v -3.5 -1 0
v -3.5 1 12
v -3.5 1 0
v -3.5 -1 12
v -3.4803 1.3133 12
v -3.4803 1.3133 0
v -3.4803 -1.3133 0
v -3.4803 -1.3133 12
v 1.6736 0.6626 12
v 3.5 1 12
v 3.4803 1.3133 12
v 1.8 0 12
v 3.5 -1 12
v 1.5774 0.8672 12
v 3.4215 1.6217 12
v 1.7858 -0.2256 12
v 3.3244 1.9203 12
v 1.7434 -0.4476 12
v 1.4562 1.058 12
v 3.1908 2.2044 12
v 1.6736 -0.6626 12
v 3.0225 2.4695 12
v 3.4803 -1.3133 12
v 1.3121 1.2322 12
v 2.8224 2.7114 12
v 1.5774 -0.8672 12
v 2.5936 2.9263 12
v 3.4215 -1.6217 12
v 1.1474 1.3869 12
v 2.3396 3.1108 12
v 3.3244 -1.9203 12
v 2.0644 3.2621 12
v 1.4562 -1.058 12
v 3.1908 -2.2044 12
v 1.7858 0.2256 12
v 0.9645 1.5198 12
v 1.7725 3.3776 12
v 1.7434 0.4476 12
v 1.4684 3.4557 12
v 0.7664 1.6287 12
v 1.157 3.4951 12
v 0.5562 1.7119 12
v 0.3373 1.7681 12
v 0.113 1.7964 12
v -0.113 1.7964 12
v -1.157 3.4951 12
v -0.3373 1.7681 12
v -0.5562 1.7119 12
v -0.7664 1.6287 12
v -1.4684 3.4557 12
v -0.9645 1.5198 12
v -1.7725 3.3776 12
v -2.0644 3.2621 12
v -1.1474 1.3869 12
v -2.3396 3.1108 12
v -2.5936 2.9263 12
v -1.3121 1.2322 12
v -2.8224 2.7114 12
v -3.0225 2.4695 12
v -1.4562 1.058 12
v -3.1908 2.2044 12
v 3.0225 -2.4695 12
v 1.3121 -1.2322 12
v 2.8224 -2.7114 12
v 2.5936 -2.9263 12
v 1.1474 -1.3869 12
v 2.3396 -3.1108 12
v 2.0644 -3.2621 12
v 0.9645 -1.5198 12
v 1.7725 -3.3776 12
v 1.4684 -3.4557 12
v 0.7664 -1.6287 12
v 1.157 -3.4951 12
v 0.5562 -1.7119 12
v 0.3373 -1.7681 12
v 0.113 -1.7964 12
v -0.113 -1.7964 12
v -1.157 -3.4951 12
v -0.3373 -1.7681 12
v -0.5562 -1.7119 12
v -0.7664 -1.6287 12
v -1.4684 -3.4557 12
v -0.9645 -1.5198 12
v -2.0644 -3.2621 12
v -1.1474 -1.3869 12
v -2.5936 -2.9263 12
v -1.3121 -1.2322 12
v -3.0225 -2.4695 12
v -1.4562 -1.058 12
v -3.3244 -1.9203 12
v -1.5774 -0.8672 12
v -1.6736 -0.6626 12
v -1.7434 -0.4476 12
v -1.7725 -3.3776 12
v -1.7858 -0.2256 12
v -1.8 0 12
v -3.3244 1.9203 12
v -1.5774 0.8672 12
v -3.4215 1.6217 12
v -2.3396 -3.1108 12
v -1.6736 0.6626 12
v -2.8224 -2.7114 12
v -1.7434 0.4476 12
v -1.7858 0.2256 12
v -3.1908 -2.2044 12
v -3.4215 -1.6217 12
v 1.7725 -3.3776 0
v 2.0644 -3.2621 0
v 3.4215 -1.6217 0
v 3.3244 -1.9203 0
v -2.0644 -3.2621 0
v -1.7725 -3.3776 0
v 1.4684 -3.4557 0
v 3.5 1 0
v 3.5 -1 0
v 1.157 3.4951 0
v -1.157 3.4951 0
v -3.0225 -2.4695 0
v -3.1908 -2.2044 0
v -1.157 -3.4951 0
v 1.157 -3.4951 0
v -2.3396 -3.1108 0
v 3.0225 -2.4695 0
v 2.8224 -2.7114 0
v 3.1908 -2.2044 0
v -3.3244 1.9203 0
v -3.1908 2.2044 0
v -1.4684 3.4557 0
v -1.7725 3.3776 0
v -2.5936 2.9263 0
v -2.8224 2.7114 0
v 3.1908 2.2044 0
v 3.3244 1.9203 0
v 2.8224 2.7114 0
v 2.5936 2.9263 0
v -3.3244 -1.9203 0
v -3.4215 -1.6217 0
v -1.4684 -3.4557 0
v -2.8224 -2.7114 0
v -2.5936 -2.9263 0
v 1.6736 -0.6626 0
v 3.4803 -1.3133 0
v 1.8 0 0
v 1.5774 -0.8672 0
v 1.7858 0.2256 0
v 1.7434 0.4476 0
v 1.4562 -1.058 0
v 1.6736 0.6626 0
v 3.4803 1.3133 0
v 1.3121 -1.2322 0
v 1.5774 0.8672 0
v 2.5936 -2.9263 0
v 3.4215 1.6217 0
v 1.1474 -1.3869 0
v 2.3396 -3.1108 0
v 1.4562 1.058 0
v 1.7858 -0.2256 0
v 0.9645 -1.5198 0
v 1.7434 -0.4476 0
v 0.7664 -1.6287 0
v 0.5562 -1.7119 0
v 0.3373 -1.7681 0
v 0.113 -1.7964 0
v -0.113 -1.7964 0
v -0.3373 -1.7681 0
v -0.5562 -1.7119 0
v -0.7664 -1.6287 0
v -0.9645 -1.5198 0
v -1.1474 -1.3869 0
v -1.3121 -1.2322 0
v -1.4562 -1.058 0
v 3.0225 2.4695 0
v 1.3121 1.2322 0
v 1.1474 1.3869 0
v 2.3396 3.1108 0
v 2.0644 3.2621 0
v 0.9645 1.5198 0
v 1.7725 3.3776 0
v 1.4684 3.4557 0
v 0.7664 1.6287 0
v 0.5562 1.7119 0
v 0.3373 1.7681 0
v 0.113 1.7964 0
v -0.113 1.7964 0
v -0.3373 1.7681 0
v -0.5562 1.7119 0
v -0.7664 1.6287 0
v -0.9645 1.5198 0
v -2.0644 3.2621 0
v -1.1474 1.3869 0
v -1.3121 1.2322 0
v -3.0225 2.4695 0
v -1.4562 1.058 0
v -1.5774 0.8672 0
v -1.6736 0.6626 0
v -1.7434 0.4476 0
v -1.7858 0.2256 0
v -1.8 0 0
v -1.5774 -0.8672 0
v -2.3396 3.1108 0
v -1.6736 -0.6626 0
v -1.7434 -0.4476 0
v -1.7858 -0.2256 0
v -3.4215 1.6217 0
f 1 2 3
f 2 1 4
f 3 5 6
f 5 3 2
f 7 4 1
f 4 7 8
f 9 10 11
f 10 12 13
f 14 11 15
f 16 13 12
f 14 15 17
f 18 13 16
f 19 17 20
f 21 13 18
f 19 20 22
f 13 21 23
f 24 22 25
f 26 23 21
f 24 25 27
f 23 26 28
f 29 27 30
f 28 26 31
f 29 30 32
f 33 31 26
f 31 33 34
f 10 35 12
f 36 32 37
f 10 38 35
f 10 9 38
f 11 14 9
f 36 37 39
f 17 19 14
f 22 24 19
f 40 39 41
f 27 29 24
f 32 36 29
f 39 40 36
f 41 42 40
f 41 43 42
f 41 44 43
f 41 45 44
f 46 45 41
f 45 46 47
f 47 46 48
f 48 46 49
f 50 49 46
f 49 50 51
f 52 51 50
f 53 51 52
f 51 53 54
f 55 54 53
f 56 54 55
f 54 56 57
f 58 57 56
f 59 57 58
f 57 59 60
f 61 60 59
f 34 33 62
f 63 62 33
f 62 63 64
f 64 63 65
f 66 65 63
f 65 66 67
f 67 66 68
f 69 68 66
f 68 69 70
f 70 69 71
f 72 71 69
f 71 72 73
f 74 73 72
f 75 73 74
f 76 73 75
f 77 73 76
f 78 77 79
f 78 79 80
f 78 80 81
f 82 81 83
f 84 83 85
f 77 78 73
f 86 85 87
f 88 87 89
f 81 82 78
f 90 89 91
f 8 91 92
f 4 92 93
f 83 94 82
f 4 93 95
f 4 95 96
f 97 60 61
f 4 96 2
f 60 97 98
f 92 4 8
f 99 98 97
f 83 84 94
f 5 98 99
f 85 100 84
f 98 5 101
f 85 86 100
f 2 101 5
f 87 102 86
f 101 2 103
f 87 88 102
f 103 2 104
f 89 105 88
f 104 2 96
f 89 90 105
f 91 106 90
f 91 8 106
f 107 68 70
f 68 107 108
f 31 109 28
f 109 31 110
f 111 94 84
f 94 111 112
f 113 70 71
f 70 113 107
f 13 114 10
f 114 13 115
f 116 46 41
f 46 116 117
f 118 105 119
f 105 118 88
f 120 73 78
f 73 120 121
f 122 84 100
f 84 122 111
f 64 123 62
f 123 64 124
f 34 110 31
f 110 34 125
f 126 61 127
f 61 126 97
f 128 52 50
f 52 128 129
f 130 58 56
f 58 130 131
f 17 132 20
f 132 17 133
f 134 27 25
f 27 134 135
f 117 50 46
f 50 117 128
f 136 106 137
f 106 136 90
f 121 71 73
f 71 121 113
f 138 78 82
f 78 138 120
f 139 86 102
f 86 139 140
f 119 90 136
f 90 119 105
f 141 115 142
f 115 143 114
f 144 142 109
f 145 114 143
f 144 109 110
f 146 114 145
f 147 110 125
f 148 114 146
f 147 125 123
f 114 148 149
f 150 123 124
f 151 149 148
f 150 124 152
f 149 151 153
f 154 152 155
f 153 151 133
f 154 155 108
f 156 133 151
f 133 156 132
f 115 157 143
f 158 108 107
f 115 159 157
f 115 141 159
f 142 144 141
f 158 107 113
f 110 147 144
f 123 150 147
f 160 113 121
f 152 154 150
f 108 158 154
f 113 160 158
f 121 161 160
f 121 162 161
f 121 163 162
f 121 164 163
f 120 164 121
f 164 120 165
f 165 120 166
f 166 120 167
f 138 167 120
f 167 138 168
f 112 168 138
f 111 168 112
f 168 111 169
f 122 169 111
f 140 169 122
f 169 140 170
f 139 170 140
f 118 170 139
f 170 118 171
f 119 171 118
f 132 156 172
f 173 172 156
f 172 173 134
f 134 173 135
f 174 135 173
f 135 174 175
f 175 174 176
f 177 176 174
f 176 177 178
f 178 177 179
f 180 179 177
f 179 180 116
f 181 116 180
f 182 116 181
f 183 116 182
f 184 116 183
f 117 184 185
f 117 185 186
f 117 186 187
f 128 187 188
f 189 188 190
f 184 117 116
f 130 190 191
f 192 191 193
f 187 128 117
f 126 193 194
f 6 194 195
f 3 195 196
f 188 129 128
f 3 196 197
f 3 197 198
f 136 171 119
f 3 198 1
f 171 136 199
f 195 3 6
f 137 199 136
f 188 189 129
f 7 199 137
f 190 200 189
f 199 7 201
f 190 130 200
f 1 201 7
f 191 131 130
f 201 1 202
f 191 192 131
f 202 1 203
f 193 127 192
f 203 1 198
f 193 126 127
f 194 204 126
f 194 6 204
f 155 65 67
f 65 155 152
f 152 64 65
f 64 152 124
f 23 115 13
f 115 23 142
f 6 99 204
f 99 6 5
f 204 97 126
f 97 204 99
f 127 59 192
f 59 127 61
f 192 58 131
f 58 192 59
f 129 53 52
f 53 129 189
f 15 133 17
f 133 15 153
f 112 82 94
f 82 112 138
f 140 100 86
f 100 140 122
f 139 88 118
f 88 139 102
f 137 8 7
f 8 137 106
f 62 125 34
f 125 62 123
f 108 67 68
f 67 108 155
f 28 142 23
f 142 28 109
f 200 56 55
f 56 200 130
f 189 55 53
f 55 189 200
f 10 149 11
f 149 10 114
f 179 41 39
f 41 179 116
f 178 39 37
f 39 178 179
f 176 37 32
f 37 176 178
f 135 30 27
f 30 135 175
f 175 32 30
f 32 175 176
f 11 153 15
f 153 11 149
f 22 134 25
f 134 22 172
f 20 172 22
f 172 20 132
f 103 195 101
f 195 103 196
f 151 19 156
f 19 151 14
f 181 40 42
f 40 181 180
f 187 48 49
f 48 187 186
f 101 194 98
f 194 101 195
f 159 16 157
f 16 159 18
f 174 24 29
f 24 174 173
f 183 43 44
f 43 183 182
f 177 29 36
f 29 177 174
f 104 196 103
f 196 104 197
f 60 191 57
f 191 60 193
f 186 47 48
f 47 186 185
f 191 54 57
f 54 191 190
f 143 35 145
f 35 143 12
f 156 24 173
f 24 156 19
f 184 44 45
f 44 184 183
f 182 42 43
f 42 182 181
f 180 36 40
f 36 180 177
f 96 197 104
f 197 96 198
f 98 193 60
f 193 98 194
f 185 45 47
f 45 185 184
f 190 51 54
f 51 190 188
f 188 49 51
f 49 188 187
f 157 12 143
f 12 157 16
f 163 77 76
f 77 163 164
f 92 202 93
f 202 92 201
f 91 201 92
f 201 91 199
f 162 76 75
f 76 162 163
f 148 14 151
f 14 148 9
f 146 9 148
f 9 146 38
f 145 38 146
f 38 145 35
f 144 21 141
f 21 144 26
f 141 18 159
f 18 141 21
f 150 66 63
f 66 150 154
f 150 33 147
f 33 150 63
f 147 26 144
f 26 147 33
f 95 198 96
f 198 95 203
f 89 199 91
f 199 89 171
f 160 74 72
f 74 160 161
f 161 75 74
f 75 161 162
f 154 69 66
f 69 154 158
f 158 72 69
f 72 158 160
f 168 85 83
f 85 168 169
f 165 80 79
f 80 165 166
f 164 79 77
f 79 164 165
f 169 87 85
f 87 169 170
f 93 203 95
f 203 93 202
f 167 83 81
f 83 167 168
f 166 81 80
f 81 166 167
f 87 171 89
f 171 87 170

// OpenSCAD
$fn = 50;


difference() {
	union() {
		translate(v = [0, 0, 0]) {
			rotate(a = [0, 0, 0]) {
				hull() {
					translate(v = [-1.0000000000, 1.0000000000, 0]) {
						rotate(a = [0, 0, 0]) {
							translate(v = [0, 0, 0]) {
								rotate(a = [0, 0, 0]) {
									cylinder(h = 12, r = 2.5000000000);
								}
							}
						}
					}
					translate(v = [1.0000000000, 1.0000000000, 0]) {
						rotate(a = [0, 0, 0]) {
							translate(v = [0, 0, 0]) {
								rotate(a = [0, 0, 0]) {
									cylinder(h = 12, r = 2.5000000000);
								}
							}
						}
					}
					translate(v = [-1.0000000000, -1.0000000000, 0]) {
						rotate(a = [0, 0, 0]) {
							translate(v = [0, 0, 0]) {
								rotate(a = [0, 0, 0]) {
									cylinder(h = 12, r = 2.5000000000);
								}
							}
						}
					}
					translate(v = [1.0000000000, -1.0000000000, 0]) {
						rotate(a = [0, 0, 0]) {
							translate(v = [0, 0, 0]) {
								rotate(a = [0, 0, 0]) {
									cylinder(h = 12, r = 2.5000000000);
								}
							}
						}
					}
				}
			}
		}
	}
	union() {
		translate(v = [0.0000000000, 0.0000000000, 0]) {
			rotate(a = [0, 0, 0]) {
				translate(v = [0, 0, -50]) {
					rotate(a = [0, 0, 0]) {
						cylinder(h = 100, r = 1.8000000000);
					}
				}
			}
		}
	}
}
